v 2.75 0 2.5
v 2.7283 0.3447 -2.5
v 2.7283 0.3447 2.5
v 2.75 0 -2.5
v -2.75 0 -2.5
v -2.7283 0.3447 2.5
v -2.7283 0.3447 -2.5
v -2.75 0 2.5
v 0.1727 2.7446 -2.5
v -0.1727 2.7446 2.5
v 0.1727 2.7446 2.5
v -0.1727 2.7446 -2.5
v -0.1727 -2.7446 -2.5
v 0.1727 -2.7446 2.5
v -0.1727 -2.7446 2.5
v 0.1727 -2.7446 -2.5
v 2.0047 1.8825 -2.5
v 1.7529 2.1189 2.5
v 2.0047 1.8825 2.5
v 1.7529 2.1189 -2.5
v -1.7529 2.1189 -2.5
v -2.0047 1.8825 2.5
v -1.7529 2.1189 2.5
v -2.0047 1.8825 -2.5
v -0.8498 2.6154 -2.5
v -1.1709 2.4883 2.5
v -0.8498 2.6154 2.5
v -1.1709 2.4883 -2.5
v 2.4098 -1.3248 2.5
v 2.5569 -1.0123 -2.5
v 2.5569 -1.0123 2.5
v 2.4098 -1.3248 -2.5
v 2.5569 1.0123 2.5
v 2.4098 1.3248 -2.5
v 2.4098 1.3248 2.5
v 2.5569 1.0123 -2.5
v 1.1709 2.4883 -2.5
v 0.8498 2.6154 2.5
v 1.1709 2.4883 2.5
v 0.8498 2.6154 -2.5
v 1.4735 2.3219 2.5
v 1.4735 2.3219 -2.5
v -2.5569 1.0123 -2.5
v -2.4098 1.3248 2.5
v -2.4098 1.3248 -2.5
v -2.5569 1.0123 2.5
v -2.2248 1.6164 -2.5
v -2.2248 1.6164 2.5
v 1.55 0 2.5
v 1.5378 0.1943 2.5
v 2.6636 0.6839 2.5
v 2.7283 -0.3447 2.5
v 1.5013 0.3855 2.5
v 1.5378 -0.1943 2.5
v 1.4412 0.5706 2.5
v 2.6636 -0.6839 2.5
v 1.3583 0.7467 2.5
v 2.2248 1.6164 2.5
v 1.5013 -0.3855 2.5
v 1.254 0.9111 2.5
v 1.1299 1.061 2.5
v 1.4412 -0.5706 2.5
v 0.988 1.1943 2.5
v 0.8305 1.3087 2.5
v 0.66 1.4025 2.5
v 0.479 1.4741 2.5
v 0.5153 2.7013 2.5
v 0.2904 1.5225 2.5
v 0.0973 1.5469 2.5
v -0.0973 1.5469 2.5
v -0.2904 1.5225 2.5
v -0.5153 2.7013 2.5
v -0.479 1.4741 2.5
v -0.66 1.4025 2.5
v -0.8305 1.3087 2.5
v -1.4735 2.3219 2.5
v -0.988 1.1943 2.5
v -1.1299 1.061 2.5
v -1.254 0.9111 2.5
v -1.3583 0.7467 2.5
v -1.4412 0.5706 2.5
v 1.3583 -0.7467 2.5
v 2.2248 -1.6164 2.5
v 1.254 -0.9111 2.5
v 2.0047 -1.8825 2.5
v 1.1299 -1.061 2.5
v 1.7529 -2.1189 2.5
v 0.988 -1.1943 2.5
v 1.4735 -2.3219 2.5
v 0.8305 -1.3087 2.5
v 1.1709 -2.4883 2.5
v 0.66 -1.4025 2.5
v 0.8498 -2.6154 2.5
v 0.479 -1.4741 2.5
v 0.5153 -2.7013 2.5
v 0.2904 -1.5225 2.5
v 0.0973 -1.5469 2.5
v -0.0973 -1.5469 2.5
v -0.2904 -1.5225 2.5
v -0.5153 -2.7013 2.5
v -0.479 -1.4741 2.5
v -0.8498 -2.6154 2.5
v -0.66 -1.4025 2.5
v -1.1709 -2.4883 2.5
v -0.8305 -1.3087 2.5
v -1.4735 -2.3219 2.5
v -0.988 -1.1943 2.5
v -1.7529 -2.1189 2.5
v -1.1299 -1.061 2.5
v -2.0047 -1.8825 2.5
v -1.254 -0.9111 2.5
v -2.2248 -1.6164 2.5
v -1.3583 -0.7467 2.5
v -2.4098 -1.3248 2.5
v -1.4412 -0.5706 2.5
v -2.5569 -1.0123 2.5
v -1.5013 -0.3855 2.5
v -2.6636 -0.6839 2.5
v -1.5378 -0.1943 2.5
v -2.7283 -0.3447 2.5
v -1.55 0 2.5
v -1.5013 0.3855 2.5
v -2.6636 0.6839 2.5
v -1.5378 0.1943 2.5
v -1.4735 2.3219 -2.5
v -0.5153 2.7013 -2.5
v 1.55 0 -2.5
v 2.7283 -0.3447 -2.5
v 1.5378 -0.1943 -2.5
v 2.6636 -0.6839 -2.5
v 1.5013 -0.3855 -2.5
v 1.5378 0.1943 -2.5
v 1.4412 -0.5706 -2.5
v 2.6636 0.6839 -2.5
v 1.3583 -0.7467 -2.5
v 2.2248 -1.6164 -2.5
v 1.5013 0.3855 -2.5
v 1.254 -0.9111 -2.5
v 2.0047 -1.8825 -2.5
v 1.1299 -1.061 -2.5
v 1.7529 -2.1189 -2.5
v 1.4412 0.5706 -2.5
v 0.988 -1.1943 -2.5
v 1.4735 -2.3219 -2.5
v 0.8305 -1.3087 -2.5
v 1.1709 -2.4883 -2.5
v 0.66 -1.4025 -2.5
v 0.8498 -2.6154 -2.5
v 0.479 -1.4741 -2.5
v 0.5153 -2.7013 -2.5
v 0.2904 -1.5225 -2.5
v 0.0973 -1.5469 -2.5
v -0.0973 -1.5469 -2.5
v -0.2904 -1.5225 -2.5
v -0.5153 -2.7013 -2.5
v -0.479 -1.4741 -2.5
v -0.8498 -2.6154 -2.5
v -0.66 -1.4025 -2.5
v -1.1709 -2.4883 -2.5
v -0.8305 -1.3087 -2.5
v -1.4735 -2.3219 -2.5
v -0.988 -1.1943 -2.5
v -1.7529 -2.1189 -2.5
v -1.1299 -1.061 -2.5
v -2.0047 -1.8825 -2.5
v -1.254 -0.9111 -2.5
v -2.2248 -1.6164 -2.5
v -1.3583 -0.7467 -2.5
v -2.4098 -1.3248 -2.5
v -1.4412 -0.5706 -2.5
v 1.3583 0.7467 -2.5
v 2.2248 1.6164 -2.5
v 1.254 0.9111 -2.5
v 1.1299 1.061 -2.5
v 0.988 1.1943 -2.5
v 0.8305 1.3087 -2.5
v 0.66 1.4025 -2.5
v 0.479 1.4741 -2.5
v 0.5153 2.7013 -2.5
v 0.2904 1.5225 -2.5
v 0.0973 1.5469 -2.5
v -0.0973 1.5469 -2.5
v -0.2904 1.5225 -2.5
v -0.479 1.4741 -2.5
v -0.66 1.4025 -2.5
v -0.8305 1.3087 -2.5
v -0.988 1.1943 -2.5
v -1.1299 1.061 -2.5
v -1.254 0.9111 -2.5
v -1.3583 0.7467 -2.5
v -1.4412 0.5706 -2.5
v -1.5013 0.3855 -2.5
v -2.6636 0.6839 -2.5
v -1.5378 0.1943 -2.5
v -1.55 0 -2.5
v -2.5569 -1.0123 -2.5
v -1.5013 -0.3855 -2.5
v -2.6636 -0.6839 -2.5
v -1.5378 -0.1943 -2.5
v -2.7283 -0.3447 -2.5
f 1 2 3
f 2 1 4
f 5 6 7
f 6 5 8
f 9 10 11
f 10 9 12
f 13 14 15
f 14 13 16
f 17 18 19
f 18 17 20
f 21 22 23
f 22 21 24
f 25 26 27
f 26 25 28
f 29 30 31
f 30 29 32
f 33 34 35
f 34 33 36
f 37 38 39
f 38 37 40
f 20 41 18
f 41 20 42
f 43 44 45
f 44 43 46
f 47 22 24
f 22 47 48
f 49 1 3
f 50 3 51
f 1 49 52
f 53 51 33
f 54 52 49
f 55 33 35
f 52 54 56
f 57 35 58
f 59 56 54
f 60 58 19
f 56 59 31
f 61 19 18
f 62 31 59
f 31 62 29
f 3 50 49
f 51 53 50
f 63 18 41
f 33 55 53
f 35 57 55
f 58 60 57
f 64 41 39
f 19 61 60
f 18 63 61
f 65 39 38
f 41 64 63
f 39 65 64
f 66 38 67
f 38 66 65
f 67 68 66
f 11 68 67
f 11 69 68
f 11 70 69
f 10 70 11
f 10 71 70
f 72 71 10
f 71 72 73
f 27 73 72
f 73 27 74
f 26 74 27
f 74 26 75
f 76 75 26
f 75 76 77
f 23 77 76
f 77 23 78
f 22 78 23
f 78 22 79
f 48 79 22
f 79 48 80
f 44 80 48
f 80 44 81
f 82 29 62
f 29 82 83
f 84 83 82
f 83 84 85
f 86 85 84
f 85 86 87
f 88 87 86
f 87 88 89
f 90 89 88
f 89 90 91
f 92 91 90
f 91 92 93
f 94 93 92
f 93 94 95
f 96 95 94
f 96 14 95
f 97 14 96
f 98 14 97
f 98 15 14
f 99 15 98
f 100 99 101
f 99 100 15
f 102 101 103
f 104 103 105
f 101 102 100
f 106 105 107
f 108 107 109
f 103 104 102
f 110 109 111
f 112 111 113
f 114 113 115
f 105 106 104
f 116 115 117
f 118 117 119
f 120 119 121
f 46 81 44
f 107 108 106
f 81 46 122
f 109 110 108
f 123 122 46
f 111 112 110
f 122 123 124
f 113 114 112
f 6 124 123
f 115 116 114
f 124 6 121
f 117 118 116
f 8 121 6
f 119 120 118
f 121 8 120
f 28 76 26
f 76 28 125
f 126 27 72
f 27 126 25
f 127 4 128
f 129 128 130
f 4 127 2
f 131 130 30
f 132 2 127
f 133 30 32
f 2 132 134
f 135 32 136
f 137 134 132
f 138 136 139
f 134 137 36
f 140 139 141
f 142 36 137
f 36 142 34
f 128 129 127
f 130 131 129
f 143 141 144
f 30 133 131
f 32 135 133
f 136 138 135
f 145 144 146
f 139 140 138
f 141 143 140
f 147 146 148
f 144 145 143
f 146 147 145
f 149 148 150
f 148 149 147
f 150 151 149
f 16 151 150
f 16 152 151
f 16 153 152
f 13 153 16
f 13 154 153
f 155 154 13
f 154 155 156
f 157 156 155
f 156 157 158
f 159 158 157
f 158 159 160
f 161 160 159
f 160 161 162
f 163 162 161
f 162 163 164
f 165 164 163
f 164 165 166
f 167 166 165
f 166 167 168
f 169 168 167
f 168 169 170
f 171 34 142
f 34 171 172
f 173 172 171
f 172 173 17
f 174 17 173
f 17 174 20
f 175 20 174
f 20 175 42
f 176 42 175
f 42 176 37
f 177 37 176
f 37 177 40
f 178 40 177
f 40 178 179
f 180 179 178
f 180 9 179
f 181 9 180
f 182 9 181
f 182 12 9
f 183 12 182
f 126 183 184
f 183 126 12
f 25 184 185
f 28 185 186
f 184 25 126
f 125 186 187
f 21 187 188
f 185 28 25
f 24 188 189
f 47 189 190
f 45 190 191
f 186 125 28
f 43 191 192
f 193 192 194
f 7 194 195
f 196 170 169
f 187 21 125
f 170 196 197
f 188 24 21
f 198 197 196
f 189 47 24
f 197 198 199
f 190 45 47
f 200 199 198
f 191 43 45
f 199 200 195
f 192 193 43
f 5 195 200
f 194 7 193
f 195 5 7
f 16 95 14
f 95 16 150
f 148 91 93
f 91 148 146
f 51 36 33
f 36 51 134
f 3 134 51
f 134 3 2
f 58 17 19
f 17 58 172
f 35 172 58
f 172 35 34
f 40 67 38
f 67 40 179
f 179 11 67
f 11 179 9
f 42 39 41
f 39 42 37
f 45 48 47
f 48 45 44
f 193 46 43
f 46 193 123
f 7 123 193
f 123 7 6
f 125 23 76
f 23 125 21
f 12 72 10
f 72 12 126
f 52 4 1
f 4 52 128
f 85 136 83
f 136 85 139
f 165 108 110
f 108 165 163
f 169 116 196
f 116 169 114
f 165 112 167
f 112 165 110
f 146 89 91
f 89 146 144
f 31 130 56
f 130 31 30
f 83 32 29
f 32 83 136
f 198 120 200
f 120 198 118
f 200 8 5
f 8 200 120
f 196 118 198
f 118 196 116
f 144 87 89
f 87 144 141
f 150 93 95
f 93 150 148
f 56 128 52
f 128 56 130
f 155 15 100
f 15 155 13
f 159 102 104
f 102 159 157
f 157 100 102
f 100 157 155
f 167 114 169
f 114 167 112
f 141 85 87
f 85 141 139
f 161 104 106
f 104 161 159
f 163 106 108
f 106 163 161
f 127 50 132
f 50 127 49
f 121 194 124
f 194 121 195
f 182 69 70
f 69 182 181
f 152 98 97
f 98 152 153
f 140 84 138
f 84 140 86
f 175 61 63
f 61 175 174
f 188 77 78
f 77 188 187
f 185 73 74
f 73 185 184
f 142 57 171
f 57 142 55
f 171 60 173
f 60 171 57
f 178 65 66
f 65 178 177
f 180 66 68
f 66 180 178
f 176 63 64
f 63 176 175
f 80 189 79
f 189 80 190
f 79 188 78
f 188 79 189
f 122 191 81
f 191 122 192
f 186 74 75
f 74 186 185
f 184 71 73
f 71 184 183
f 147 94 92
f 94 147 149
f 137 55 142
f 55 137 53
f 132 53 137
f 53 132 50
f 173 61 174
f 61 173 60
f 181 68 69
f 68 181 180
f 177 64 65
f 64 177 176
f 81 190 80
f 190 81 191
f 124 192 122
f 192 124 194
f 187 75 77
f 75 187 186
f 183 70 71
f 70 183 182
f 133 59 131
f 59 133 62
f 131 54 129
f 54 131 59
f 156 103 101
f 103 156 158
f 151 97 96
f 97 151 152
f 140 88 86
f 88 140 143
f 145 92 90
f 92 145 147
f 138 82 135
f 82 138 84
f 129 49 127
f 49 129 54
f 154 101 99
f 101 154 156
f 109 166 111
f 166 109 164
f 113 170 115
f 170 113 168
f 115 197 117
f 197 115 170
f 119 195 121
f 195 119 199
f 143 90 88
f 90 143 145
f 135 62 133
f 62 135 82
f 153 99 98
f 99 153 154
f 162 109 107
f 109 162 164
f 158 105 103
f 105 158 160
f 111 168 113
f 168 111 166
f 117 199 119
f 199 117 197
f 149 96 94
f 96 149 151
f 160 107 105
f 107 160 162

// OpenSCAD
$fn = 50;


difference() {
	union() {
		translate(v = [0, 0, -2.5000000000]) {
			cylinder(h = 5, r = 2.7500000000);
		}
	}
	union() {
		translate(v = [0, 0, -100.0000000000]) {
			cylinder(h = 200, r = 1.5500000000);
		}
	}
}
